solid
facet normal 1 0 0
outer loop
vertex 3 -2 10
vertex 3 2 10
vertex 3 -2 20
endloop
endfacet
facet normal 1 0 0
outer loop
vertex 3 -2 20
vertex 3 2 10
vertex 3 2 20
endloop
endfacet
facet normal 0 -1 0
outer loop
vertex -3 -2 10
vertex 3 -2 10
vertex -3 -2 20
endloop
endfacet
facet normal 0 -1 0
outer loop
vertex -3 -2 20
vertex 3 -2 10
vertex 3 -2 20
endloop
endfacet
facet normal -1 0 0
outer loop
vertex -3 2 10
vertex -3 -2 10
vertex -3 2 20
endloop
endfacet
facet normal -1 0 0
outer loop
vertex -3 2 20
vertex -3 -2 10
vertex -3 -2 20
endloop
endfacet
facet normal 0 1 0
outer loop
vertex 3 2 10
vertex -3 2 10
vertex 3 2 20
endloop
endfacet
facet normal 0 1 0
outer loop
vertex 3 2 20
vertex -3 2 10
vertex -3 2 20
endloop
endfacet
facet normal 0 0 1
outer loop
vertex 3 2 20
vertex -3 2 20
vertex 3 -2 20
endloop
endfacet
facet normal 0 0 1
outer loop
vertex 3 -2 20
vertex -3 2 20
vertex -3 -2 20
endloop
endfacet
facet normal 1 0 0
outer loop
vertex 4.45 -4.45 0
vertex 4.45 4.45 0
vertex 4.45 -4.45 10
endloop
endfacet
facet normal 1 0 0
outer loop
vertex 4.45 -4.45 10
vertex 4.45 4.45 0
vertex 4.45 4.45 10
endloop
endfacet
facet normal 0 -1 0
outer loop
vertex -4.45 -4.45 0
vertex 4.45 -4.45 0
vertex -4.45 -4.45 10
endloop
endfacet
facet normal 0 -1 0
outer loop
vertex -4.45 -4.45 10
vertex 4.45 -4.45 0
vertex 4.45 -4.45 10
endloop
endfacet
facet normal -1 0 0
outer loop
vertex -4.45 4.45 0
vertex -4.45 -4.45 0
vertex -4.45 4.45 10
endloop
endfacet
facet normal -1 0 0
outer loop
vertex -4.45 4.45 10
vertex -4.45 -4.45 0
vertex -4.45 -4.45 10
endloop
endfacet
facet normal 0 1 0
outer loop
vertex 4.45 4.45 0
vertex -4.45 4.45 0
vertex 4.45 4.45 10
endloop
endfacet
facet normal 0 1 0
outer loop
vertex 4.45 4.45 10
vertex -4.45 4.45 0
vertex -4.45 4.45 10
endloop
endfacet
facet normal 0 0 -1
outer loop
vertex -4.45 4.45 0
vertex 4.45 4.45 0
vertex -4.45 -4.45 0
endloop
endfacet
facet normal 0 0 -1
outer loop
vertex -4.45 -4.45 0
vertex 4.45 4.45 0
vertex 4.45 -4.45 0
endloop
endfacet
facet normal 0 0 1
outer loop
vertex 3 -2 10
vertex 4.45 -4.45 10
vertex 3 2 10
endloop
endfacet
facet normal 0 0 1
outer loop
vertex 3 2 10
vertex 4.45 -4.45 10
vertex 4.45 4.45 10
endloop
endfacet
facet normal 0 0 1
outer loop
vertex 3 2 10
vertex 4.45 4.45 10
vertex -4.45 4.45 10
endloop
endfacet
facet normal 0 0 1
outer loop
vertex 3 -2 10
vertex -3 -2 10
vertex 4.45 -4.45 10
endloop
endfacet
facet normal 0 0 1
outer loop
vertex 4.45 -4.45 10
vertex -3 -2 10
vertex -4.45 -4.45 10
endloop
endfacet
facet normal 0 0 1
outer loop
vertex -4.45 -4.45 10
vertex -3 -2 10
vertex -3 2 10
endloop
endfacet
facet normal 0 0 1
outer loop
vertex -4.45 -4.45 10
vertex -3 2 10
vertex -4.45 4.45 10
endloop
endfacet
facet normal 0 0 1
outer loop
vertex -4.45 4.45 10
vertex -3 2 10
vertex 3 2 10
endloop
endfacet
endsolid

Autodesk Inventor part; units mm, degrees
ref_plane "YZ Plane" through (0, 0, 0) normal (1, 0, 0) x (0, 1, 0)
ref_plane "XZ Plane" through (0, 0, 0) normal (0, 1, 0) x (-1, 0, 0)
ref_plane "XY Plane" through (0, 0, 0) normal (0, 0, 1) x (1, 0, 0)
sketch "Sketch1" plane through (0, 0, 0) normal (0, 0, 1) x (1, 0, 0)
  line L0 (-4.45, 4.45) -> (4.45, 4.45)
  line L1 (4.45, 4.45) -> (4.45, -4.45)
  line L2 (4.45, -4.45) -> (-4.45, -4.45)
  line L3 (-4.45, -4.45) -> (-4.45, 4.45)
  point P0 (0, 0)
  dimension "d0" = 8.9
  dimension "d1" = 8.9
  dimension "d2" = 4.45
  dimension "d3" = 4.45
extrude "Extrusion1" add sketch "Sketch1" along normal blind 10
sketch "Sketch2" plane through (0, 0, 10) normal (0, 0, 1) x (1, 0, 0)
  line L0 (-3, 2) -> (3, 2)
  line L1 (3, 2) -> (3, -2)
  line L2 (3, -2) -> (-3, -2)
  line L3 (-3, -2) -> (-3, 2)
  point P0 (0, 0)
  dimension "d6" = 4
  dimension "d7" = 6
  dimension "d8" = 2
  dimension "d9" = 3
extrude "Extrusion2" add sketch "Sketch2" along normal blind 10
equation "\"d1\" = d0"
equation "\"d2\" = 0.5 * d0"
equation "\"d3\" = 0.5 * d0"
equation "\"d8\" = 0.5 * d6"
equation "\"d9\" = 0.5 * d7"
properties part number "PulleySocket"
